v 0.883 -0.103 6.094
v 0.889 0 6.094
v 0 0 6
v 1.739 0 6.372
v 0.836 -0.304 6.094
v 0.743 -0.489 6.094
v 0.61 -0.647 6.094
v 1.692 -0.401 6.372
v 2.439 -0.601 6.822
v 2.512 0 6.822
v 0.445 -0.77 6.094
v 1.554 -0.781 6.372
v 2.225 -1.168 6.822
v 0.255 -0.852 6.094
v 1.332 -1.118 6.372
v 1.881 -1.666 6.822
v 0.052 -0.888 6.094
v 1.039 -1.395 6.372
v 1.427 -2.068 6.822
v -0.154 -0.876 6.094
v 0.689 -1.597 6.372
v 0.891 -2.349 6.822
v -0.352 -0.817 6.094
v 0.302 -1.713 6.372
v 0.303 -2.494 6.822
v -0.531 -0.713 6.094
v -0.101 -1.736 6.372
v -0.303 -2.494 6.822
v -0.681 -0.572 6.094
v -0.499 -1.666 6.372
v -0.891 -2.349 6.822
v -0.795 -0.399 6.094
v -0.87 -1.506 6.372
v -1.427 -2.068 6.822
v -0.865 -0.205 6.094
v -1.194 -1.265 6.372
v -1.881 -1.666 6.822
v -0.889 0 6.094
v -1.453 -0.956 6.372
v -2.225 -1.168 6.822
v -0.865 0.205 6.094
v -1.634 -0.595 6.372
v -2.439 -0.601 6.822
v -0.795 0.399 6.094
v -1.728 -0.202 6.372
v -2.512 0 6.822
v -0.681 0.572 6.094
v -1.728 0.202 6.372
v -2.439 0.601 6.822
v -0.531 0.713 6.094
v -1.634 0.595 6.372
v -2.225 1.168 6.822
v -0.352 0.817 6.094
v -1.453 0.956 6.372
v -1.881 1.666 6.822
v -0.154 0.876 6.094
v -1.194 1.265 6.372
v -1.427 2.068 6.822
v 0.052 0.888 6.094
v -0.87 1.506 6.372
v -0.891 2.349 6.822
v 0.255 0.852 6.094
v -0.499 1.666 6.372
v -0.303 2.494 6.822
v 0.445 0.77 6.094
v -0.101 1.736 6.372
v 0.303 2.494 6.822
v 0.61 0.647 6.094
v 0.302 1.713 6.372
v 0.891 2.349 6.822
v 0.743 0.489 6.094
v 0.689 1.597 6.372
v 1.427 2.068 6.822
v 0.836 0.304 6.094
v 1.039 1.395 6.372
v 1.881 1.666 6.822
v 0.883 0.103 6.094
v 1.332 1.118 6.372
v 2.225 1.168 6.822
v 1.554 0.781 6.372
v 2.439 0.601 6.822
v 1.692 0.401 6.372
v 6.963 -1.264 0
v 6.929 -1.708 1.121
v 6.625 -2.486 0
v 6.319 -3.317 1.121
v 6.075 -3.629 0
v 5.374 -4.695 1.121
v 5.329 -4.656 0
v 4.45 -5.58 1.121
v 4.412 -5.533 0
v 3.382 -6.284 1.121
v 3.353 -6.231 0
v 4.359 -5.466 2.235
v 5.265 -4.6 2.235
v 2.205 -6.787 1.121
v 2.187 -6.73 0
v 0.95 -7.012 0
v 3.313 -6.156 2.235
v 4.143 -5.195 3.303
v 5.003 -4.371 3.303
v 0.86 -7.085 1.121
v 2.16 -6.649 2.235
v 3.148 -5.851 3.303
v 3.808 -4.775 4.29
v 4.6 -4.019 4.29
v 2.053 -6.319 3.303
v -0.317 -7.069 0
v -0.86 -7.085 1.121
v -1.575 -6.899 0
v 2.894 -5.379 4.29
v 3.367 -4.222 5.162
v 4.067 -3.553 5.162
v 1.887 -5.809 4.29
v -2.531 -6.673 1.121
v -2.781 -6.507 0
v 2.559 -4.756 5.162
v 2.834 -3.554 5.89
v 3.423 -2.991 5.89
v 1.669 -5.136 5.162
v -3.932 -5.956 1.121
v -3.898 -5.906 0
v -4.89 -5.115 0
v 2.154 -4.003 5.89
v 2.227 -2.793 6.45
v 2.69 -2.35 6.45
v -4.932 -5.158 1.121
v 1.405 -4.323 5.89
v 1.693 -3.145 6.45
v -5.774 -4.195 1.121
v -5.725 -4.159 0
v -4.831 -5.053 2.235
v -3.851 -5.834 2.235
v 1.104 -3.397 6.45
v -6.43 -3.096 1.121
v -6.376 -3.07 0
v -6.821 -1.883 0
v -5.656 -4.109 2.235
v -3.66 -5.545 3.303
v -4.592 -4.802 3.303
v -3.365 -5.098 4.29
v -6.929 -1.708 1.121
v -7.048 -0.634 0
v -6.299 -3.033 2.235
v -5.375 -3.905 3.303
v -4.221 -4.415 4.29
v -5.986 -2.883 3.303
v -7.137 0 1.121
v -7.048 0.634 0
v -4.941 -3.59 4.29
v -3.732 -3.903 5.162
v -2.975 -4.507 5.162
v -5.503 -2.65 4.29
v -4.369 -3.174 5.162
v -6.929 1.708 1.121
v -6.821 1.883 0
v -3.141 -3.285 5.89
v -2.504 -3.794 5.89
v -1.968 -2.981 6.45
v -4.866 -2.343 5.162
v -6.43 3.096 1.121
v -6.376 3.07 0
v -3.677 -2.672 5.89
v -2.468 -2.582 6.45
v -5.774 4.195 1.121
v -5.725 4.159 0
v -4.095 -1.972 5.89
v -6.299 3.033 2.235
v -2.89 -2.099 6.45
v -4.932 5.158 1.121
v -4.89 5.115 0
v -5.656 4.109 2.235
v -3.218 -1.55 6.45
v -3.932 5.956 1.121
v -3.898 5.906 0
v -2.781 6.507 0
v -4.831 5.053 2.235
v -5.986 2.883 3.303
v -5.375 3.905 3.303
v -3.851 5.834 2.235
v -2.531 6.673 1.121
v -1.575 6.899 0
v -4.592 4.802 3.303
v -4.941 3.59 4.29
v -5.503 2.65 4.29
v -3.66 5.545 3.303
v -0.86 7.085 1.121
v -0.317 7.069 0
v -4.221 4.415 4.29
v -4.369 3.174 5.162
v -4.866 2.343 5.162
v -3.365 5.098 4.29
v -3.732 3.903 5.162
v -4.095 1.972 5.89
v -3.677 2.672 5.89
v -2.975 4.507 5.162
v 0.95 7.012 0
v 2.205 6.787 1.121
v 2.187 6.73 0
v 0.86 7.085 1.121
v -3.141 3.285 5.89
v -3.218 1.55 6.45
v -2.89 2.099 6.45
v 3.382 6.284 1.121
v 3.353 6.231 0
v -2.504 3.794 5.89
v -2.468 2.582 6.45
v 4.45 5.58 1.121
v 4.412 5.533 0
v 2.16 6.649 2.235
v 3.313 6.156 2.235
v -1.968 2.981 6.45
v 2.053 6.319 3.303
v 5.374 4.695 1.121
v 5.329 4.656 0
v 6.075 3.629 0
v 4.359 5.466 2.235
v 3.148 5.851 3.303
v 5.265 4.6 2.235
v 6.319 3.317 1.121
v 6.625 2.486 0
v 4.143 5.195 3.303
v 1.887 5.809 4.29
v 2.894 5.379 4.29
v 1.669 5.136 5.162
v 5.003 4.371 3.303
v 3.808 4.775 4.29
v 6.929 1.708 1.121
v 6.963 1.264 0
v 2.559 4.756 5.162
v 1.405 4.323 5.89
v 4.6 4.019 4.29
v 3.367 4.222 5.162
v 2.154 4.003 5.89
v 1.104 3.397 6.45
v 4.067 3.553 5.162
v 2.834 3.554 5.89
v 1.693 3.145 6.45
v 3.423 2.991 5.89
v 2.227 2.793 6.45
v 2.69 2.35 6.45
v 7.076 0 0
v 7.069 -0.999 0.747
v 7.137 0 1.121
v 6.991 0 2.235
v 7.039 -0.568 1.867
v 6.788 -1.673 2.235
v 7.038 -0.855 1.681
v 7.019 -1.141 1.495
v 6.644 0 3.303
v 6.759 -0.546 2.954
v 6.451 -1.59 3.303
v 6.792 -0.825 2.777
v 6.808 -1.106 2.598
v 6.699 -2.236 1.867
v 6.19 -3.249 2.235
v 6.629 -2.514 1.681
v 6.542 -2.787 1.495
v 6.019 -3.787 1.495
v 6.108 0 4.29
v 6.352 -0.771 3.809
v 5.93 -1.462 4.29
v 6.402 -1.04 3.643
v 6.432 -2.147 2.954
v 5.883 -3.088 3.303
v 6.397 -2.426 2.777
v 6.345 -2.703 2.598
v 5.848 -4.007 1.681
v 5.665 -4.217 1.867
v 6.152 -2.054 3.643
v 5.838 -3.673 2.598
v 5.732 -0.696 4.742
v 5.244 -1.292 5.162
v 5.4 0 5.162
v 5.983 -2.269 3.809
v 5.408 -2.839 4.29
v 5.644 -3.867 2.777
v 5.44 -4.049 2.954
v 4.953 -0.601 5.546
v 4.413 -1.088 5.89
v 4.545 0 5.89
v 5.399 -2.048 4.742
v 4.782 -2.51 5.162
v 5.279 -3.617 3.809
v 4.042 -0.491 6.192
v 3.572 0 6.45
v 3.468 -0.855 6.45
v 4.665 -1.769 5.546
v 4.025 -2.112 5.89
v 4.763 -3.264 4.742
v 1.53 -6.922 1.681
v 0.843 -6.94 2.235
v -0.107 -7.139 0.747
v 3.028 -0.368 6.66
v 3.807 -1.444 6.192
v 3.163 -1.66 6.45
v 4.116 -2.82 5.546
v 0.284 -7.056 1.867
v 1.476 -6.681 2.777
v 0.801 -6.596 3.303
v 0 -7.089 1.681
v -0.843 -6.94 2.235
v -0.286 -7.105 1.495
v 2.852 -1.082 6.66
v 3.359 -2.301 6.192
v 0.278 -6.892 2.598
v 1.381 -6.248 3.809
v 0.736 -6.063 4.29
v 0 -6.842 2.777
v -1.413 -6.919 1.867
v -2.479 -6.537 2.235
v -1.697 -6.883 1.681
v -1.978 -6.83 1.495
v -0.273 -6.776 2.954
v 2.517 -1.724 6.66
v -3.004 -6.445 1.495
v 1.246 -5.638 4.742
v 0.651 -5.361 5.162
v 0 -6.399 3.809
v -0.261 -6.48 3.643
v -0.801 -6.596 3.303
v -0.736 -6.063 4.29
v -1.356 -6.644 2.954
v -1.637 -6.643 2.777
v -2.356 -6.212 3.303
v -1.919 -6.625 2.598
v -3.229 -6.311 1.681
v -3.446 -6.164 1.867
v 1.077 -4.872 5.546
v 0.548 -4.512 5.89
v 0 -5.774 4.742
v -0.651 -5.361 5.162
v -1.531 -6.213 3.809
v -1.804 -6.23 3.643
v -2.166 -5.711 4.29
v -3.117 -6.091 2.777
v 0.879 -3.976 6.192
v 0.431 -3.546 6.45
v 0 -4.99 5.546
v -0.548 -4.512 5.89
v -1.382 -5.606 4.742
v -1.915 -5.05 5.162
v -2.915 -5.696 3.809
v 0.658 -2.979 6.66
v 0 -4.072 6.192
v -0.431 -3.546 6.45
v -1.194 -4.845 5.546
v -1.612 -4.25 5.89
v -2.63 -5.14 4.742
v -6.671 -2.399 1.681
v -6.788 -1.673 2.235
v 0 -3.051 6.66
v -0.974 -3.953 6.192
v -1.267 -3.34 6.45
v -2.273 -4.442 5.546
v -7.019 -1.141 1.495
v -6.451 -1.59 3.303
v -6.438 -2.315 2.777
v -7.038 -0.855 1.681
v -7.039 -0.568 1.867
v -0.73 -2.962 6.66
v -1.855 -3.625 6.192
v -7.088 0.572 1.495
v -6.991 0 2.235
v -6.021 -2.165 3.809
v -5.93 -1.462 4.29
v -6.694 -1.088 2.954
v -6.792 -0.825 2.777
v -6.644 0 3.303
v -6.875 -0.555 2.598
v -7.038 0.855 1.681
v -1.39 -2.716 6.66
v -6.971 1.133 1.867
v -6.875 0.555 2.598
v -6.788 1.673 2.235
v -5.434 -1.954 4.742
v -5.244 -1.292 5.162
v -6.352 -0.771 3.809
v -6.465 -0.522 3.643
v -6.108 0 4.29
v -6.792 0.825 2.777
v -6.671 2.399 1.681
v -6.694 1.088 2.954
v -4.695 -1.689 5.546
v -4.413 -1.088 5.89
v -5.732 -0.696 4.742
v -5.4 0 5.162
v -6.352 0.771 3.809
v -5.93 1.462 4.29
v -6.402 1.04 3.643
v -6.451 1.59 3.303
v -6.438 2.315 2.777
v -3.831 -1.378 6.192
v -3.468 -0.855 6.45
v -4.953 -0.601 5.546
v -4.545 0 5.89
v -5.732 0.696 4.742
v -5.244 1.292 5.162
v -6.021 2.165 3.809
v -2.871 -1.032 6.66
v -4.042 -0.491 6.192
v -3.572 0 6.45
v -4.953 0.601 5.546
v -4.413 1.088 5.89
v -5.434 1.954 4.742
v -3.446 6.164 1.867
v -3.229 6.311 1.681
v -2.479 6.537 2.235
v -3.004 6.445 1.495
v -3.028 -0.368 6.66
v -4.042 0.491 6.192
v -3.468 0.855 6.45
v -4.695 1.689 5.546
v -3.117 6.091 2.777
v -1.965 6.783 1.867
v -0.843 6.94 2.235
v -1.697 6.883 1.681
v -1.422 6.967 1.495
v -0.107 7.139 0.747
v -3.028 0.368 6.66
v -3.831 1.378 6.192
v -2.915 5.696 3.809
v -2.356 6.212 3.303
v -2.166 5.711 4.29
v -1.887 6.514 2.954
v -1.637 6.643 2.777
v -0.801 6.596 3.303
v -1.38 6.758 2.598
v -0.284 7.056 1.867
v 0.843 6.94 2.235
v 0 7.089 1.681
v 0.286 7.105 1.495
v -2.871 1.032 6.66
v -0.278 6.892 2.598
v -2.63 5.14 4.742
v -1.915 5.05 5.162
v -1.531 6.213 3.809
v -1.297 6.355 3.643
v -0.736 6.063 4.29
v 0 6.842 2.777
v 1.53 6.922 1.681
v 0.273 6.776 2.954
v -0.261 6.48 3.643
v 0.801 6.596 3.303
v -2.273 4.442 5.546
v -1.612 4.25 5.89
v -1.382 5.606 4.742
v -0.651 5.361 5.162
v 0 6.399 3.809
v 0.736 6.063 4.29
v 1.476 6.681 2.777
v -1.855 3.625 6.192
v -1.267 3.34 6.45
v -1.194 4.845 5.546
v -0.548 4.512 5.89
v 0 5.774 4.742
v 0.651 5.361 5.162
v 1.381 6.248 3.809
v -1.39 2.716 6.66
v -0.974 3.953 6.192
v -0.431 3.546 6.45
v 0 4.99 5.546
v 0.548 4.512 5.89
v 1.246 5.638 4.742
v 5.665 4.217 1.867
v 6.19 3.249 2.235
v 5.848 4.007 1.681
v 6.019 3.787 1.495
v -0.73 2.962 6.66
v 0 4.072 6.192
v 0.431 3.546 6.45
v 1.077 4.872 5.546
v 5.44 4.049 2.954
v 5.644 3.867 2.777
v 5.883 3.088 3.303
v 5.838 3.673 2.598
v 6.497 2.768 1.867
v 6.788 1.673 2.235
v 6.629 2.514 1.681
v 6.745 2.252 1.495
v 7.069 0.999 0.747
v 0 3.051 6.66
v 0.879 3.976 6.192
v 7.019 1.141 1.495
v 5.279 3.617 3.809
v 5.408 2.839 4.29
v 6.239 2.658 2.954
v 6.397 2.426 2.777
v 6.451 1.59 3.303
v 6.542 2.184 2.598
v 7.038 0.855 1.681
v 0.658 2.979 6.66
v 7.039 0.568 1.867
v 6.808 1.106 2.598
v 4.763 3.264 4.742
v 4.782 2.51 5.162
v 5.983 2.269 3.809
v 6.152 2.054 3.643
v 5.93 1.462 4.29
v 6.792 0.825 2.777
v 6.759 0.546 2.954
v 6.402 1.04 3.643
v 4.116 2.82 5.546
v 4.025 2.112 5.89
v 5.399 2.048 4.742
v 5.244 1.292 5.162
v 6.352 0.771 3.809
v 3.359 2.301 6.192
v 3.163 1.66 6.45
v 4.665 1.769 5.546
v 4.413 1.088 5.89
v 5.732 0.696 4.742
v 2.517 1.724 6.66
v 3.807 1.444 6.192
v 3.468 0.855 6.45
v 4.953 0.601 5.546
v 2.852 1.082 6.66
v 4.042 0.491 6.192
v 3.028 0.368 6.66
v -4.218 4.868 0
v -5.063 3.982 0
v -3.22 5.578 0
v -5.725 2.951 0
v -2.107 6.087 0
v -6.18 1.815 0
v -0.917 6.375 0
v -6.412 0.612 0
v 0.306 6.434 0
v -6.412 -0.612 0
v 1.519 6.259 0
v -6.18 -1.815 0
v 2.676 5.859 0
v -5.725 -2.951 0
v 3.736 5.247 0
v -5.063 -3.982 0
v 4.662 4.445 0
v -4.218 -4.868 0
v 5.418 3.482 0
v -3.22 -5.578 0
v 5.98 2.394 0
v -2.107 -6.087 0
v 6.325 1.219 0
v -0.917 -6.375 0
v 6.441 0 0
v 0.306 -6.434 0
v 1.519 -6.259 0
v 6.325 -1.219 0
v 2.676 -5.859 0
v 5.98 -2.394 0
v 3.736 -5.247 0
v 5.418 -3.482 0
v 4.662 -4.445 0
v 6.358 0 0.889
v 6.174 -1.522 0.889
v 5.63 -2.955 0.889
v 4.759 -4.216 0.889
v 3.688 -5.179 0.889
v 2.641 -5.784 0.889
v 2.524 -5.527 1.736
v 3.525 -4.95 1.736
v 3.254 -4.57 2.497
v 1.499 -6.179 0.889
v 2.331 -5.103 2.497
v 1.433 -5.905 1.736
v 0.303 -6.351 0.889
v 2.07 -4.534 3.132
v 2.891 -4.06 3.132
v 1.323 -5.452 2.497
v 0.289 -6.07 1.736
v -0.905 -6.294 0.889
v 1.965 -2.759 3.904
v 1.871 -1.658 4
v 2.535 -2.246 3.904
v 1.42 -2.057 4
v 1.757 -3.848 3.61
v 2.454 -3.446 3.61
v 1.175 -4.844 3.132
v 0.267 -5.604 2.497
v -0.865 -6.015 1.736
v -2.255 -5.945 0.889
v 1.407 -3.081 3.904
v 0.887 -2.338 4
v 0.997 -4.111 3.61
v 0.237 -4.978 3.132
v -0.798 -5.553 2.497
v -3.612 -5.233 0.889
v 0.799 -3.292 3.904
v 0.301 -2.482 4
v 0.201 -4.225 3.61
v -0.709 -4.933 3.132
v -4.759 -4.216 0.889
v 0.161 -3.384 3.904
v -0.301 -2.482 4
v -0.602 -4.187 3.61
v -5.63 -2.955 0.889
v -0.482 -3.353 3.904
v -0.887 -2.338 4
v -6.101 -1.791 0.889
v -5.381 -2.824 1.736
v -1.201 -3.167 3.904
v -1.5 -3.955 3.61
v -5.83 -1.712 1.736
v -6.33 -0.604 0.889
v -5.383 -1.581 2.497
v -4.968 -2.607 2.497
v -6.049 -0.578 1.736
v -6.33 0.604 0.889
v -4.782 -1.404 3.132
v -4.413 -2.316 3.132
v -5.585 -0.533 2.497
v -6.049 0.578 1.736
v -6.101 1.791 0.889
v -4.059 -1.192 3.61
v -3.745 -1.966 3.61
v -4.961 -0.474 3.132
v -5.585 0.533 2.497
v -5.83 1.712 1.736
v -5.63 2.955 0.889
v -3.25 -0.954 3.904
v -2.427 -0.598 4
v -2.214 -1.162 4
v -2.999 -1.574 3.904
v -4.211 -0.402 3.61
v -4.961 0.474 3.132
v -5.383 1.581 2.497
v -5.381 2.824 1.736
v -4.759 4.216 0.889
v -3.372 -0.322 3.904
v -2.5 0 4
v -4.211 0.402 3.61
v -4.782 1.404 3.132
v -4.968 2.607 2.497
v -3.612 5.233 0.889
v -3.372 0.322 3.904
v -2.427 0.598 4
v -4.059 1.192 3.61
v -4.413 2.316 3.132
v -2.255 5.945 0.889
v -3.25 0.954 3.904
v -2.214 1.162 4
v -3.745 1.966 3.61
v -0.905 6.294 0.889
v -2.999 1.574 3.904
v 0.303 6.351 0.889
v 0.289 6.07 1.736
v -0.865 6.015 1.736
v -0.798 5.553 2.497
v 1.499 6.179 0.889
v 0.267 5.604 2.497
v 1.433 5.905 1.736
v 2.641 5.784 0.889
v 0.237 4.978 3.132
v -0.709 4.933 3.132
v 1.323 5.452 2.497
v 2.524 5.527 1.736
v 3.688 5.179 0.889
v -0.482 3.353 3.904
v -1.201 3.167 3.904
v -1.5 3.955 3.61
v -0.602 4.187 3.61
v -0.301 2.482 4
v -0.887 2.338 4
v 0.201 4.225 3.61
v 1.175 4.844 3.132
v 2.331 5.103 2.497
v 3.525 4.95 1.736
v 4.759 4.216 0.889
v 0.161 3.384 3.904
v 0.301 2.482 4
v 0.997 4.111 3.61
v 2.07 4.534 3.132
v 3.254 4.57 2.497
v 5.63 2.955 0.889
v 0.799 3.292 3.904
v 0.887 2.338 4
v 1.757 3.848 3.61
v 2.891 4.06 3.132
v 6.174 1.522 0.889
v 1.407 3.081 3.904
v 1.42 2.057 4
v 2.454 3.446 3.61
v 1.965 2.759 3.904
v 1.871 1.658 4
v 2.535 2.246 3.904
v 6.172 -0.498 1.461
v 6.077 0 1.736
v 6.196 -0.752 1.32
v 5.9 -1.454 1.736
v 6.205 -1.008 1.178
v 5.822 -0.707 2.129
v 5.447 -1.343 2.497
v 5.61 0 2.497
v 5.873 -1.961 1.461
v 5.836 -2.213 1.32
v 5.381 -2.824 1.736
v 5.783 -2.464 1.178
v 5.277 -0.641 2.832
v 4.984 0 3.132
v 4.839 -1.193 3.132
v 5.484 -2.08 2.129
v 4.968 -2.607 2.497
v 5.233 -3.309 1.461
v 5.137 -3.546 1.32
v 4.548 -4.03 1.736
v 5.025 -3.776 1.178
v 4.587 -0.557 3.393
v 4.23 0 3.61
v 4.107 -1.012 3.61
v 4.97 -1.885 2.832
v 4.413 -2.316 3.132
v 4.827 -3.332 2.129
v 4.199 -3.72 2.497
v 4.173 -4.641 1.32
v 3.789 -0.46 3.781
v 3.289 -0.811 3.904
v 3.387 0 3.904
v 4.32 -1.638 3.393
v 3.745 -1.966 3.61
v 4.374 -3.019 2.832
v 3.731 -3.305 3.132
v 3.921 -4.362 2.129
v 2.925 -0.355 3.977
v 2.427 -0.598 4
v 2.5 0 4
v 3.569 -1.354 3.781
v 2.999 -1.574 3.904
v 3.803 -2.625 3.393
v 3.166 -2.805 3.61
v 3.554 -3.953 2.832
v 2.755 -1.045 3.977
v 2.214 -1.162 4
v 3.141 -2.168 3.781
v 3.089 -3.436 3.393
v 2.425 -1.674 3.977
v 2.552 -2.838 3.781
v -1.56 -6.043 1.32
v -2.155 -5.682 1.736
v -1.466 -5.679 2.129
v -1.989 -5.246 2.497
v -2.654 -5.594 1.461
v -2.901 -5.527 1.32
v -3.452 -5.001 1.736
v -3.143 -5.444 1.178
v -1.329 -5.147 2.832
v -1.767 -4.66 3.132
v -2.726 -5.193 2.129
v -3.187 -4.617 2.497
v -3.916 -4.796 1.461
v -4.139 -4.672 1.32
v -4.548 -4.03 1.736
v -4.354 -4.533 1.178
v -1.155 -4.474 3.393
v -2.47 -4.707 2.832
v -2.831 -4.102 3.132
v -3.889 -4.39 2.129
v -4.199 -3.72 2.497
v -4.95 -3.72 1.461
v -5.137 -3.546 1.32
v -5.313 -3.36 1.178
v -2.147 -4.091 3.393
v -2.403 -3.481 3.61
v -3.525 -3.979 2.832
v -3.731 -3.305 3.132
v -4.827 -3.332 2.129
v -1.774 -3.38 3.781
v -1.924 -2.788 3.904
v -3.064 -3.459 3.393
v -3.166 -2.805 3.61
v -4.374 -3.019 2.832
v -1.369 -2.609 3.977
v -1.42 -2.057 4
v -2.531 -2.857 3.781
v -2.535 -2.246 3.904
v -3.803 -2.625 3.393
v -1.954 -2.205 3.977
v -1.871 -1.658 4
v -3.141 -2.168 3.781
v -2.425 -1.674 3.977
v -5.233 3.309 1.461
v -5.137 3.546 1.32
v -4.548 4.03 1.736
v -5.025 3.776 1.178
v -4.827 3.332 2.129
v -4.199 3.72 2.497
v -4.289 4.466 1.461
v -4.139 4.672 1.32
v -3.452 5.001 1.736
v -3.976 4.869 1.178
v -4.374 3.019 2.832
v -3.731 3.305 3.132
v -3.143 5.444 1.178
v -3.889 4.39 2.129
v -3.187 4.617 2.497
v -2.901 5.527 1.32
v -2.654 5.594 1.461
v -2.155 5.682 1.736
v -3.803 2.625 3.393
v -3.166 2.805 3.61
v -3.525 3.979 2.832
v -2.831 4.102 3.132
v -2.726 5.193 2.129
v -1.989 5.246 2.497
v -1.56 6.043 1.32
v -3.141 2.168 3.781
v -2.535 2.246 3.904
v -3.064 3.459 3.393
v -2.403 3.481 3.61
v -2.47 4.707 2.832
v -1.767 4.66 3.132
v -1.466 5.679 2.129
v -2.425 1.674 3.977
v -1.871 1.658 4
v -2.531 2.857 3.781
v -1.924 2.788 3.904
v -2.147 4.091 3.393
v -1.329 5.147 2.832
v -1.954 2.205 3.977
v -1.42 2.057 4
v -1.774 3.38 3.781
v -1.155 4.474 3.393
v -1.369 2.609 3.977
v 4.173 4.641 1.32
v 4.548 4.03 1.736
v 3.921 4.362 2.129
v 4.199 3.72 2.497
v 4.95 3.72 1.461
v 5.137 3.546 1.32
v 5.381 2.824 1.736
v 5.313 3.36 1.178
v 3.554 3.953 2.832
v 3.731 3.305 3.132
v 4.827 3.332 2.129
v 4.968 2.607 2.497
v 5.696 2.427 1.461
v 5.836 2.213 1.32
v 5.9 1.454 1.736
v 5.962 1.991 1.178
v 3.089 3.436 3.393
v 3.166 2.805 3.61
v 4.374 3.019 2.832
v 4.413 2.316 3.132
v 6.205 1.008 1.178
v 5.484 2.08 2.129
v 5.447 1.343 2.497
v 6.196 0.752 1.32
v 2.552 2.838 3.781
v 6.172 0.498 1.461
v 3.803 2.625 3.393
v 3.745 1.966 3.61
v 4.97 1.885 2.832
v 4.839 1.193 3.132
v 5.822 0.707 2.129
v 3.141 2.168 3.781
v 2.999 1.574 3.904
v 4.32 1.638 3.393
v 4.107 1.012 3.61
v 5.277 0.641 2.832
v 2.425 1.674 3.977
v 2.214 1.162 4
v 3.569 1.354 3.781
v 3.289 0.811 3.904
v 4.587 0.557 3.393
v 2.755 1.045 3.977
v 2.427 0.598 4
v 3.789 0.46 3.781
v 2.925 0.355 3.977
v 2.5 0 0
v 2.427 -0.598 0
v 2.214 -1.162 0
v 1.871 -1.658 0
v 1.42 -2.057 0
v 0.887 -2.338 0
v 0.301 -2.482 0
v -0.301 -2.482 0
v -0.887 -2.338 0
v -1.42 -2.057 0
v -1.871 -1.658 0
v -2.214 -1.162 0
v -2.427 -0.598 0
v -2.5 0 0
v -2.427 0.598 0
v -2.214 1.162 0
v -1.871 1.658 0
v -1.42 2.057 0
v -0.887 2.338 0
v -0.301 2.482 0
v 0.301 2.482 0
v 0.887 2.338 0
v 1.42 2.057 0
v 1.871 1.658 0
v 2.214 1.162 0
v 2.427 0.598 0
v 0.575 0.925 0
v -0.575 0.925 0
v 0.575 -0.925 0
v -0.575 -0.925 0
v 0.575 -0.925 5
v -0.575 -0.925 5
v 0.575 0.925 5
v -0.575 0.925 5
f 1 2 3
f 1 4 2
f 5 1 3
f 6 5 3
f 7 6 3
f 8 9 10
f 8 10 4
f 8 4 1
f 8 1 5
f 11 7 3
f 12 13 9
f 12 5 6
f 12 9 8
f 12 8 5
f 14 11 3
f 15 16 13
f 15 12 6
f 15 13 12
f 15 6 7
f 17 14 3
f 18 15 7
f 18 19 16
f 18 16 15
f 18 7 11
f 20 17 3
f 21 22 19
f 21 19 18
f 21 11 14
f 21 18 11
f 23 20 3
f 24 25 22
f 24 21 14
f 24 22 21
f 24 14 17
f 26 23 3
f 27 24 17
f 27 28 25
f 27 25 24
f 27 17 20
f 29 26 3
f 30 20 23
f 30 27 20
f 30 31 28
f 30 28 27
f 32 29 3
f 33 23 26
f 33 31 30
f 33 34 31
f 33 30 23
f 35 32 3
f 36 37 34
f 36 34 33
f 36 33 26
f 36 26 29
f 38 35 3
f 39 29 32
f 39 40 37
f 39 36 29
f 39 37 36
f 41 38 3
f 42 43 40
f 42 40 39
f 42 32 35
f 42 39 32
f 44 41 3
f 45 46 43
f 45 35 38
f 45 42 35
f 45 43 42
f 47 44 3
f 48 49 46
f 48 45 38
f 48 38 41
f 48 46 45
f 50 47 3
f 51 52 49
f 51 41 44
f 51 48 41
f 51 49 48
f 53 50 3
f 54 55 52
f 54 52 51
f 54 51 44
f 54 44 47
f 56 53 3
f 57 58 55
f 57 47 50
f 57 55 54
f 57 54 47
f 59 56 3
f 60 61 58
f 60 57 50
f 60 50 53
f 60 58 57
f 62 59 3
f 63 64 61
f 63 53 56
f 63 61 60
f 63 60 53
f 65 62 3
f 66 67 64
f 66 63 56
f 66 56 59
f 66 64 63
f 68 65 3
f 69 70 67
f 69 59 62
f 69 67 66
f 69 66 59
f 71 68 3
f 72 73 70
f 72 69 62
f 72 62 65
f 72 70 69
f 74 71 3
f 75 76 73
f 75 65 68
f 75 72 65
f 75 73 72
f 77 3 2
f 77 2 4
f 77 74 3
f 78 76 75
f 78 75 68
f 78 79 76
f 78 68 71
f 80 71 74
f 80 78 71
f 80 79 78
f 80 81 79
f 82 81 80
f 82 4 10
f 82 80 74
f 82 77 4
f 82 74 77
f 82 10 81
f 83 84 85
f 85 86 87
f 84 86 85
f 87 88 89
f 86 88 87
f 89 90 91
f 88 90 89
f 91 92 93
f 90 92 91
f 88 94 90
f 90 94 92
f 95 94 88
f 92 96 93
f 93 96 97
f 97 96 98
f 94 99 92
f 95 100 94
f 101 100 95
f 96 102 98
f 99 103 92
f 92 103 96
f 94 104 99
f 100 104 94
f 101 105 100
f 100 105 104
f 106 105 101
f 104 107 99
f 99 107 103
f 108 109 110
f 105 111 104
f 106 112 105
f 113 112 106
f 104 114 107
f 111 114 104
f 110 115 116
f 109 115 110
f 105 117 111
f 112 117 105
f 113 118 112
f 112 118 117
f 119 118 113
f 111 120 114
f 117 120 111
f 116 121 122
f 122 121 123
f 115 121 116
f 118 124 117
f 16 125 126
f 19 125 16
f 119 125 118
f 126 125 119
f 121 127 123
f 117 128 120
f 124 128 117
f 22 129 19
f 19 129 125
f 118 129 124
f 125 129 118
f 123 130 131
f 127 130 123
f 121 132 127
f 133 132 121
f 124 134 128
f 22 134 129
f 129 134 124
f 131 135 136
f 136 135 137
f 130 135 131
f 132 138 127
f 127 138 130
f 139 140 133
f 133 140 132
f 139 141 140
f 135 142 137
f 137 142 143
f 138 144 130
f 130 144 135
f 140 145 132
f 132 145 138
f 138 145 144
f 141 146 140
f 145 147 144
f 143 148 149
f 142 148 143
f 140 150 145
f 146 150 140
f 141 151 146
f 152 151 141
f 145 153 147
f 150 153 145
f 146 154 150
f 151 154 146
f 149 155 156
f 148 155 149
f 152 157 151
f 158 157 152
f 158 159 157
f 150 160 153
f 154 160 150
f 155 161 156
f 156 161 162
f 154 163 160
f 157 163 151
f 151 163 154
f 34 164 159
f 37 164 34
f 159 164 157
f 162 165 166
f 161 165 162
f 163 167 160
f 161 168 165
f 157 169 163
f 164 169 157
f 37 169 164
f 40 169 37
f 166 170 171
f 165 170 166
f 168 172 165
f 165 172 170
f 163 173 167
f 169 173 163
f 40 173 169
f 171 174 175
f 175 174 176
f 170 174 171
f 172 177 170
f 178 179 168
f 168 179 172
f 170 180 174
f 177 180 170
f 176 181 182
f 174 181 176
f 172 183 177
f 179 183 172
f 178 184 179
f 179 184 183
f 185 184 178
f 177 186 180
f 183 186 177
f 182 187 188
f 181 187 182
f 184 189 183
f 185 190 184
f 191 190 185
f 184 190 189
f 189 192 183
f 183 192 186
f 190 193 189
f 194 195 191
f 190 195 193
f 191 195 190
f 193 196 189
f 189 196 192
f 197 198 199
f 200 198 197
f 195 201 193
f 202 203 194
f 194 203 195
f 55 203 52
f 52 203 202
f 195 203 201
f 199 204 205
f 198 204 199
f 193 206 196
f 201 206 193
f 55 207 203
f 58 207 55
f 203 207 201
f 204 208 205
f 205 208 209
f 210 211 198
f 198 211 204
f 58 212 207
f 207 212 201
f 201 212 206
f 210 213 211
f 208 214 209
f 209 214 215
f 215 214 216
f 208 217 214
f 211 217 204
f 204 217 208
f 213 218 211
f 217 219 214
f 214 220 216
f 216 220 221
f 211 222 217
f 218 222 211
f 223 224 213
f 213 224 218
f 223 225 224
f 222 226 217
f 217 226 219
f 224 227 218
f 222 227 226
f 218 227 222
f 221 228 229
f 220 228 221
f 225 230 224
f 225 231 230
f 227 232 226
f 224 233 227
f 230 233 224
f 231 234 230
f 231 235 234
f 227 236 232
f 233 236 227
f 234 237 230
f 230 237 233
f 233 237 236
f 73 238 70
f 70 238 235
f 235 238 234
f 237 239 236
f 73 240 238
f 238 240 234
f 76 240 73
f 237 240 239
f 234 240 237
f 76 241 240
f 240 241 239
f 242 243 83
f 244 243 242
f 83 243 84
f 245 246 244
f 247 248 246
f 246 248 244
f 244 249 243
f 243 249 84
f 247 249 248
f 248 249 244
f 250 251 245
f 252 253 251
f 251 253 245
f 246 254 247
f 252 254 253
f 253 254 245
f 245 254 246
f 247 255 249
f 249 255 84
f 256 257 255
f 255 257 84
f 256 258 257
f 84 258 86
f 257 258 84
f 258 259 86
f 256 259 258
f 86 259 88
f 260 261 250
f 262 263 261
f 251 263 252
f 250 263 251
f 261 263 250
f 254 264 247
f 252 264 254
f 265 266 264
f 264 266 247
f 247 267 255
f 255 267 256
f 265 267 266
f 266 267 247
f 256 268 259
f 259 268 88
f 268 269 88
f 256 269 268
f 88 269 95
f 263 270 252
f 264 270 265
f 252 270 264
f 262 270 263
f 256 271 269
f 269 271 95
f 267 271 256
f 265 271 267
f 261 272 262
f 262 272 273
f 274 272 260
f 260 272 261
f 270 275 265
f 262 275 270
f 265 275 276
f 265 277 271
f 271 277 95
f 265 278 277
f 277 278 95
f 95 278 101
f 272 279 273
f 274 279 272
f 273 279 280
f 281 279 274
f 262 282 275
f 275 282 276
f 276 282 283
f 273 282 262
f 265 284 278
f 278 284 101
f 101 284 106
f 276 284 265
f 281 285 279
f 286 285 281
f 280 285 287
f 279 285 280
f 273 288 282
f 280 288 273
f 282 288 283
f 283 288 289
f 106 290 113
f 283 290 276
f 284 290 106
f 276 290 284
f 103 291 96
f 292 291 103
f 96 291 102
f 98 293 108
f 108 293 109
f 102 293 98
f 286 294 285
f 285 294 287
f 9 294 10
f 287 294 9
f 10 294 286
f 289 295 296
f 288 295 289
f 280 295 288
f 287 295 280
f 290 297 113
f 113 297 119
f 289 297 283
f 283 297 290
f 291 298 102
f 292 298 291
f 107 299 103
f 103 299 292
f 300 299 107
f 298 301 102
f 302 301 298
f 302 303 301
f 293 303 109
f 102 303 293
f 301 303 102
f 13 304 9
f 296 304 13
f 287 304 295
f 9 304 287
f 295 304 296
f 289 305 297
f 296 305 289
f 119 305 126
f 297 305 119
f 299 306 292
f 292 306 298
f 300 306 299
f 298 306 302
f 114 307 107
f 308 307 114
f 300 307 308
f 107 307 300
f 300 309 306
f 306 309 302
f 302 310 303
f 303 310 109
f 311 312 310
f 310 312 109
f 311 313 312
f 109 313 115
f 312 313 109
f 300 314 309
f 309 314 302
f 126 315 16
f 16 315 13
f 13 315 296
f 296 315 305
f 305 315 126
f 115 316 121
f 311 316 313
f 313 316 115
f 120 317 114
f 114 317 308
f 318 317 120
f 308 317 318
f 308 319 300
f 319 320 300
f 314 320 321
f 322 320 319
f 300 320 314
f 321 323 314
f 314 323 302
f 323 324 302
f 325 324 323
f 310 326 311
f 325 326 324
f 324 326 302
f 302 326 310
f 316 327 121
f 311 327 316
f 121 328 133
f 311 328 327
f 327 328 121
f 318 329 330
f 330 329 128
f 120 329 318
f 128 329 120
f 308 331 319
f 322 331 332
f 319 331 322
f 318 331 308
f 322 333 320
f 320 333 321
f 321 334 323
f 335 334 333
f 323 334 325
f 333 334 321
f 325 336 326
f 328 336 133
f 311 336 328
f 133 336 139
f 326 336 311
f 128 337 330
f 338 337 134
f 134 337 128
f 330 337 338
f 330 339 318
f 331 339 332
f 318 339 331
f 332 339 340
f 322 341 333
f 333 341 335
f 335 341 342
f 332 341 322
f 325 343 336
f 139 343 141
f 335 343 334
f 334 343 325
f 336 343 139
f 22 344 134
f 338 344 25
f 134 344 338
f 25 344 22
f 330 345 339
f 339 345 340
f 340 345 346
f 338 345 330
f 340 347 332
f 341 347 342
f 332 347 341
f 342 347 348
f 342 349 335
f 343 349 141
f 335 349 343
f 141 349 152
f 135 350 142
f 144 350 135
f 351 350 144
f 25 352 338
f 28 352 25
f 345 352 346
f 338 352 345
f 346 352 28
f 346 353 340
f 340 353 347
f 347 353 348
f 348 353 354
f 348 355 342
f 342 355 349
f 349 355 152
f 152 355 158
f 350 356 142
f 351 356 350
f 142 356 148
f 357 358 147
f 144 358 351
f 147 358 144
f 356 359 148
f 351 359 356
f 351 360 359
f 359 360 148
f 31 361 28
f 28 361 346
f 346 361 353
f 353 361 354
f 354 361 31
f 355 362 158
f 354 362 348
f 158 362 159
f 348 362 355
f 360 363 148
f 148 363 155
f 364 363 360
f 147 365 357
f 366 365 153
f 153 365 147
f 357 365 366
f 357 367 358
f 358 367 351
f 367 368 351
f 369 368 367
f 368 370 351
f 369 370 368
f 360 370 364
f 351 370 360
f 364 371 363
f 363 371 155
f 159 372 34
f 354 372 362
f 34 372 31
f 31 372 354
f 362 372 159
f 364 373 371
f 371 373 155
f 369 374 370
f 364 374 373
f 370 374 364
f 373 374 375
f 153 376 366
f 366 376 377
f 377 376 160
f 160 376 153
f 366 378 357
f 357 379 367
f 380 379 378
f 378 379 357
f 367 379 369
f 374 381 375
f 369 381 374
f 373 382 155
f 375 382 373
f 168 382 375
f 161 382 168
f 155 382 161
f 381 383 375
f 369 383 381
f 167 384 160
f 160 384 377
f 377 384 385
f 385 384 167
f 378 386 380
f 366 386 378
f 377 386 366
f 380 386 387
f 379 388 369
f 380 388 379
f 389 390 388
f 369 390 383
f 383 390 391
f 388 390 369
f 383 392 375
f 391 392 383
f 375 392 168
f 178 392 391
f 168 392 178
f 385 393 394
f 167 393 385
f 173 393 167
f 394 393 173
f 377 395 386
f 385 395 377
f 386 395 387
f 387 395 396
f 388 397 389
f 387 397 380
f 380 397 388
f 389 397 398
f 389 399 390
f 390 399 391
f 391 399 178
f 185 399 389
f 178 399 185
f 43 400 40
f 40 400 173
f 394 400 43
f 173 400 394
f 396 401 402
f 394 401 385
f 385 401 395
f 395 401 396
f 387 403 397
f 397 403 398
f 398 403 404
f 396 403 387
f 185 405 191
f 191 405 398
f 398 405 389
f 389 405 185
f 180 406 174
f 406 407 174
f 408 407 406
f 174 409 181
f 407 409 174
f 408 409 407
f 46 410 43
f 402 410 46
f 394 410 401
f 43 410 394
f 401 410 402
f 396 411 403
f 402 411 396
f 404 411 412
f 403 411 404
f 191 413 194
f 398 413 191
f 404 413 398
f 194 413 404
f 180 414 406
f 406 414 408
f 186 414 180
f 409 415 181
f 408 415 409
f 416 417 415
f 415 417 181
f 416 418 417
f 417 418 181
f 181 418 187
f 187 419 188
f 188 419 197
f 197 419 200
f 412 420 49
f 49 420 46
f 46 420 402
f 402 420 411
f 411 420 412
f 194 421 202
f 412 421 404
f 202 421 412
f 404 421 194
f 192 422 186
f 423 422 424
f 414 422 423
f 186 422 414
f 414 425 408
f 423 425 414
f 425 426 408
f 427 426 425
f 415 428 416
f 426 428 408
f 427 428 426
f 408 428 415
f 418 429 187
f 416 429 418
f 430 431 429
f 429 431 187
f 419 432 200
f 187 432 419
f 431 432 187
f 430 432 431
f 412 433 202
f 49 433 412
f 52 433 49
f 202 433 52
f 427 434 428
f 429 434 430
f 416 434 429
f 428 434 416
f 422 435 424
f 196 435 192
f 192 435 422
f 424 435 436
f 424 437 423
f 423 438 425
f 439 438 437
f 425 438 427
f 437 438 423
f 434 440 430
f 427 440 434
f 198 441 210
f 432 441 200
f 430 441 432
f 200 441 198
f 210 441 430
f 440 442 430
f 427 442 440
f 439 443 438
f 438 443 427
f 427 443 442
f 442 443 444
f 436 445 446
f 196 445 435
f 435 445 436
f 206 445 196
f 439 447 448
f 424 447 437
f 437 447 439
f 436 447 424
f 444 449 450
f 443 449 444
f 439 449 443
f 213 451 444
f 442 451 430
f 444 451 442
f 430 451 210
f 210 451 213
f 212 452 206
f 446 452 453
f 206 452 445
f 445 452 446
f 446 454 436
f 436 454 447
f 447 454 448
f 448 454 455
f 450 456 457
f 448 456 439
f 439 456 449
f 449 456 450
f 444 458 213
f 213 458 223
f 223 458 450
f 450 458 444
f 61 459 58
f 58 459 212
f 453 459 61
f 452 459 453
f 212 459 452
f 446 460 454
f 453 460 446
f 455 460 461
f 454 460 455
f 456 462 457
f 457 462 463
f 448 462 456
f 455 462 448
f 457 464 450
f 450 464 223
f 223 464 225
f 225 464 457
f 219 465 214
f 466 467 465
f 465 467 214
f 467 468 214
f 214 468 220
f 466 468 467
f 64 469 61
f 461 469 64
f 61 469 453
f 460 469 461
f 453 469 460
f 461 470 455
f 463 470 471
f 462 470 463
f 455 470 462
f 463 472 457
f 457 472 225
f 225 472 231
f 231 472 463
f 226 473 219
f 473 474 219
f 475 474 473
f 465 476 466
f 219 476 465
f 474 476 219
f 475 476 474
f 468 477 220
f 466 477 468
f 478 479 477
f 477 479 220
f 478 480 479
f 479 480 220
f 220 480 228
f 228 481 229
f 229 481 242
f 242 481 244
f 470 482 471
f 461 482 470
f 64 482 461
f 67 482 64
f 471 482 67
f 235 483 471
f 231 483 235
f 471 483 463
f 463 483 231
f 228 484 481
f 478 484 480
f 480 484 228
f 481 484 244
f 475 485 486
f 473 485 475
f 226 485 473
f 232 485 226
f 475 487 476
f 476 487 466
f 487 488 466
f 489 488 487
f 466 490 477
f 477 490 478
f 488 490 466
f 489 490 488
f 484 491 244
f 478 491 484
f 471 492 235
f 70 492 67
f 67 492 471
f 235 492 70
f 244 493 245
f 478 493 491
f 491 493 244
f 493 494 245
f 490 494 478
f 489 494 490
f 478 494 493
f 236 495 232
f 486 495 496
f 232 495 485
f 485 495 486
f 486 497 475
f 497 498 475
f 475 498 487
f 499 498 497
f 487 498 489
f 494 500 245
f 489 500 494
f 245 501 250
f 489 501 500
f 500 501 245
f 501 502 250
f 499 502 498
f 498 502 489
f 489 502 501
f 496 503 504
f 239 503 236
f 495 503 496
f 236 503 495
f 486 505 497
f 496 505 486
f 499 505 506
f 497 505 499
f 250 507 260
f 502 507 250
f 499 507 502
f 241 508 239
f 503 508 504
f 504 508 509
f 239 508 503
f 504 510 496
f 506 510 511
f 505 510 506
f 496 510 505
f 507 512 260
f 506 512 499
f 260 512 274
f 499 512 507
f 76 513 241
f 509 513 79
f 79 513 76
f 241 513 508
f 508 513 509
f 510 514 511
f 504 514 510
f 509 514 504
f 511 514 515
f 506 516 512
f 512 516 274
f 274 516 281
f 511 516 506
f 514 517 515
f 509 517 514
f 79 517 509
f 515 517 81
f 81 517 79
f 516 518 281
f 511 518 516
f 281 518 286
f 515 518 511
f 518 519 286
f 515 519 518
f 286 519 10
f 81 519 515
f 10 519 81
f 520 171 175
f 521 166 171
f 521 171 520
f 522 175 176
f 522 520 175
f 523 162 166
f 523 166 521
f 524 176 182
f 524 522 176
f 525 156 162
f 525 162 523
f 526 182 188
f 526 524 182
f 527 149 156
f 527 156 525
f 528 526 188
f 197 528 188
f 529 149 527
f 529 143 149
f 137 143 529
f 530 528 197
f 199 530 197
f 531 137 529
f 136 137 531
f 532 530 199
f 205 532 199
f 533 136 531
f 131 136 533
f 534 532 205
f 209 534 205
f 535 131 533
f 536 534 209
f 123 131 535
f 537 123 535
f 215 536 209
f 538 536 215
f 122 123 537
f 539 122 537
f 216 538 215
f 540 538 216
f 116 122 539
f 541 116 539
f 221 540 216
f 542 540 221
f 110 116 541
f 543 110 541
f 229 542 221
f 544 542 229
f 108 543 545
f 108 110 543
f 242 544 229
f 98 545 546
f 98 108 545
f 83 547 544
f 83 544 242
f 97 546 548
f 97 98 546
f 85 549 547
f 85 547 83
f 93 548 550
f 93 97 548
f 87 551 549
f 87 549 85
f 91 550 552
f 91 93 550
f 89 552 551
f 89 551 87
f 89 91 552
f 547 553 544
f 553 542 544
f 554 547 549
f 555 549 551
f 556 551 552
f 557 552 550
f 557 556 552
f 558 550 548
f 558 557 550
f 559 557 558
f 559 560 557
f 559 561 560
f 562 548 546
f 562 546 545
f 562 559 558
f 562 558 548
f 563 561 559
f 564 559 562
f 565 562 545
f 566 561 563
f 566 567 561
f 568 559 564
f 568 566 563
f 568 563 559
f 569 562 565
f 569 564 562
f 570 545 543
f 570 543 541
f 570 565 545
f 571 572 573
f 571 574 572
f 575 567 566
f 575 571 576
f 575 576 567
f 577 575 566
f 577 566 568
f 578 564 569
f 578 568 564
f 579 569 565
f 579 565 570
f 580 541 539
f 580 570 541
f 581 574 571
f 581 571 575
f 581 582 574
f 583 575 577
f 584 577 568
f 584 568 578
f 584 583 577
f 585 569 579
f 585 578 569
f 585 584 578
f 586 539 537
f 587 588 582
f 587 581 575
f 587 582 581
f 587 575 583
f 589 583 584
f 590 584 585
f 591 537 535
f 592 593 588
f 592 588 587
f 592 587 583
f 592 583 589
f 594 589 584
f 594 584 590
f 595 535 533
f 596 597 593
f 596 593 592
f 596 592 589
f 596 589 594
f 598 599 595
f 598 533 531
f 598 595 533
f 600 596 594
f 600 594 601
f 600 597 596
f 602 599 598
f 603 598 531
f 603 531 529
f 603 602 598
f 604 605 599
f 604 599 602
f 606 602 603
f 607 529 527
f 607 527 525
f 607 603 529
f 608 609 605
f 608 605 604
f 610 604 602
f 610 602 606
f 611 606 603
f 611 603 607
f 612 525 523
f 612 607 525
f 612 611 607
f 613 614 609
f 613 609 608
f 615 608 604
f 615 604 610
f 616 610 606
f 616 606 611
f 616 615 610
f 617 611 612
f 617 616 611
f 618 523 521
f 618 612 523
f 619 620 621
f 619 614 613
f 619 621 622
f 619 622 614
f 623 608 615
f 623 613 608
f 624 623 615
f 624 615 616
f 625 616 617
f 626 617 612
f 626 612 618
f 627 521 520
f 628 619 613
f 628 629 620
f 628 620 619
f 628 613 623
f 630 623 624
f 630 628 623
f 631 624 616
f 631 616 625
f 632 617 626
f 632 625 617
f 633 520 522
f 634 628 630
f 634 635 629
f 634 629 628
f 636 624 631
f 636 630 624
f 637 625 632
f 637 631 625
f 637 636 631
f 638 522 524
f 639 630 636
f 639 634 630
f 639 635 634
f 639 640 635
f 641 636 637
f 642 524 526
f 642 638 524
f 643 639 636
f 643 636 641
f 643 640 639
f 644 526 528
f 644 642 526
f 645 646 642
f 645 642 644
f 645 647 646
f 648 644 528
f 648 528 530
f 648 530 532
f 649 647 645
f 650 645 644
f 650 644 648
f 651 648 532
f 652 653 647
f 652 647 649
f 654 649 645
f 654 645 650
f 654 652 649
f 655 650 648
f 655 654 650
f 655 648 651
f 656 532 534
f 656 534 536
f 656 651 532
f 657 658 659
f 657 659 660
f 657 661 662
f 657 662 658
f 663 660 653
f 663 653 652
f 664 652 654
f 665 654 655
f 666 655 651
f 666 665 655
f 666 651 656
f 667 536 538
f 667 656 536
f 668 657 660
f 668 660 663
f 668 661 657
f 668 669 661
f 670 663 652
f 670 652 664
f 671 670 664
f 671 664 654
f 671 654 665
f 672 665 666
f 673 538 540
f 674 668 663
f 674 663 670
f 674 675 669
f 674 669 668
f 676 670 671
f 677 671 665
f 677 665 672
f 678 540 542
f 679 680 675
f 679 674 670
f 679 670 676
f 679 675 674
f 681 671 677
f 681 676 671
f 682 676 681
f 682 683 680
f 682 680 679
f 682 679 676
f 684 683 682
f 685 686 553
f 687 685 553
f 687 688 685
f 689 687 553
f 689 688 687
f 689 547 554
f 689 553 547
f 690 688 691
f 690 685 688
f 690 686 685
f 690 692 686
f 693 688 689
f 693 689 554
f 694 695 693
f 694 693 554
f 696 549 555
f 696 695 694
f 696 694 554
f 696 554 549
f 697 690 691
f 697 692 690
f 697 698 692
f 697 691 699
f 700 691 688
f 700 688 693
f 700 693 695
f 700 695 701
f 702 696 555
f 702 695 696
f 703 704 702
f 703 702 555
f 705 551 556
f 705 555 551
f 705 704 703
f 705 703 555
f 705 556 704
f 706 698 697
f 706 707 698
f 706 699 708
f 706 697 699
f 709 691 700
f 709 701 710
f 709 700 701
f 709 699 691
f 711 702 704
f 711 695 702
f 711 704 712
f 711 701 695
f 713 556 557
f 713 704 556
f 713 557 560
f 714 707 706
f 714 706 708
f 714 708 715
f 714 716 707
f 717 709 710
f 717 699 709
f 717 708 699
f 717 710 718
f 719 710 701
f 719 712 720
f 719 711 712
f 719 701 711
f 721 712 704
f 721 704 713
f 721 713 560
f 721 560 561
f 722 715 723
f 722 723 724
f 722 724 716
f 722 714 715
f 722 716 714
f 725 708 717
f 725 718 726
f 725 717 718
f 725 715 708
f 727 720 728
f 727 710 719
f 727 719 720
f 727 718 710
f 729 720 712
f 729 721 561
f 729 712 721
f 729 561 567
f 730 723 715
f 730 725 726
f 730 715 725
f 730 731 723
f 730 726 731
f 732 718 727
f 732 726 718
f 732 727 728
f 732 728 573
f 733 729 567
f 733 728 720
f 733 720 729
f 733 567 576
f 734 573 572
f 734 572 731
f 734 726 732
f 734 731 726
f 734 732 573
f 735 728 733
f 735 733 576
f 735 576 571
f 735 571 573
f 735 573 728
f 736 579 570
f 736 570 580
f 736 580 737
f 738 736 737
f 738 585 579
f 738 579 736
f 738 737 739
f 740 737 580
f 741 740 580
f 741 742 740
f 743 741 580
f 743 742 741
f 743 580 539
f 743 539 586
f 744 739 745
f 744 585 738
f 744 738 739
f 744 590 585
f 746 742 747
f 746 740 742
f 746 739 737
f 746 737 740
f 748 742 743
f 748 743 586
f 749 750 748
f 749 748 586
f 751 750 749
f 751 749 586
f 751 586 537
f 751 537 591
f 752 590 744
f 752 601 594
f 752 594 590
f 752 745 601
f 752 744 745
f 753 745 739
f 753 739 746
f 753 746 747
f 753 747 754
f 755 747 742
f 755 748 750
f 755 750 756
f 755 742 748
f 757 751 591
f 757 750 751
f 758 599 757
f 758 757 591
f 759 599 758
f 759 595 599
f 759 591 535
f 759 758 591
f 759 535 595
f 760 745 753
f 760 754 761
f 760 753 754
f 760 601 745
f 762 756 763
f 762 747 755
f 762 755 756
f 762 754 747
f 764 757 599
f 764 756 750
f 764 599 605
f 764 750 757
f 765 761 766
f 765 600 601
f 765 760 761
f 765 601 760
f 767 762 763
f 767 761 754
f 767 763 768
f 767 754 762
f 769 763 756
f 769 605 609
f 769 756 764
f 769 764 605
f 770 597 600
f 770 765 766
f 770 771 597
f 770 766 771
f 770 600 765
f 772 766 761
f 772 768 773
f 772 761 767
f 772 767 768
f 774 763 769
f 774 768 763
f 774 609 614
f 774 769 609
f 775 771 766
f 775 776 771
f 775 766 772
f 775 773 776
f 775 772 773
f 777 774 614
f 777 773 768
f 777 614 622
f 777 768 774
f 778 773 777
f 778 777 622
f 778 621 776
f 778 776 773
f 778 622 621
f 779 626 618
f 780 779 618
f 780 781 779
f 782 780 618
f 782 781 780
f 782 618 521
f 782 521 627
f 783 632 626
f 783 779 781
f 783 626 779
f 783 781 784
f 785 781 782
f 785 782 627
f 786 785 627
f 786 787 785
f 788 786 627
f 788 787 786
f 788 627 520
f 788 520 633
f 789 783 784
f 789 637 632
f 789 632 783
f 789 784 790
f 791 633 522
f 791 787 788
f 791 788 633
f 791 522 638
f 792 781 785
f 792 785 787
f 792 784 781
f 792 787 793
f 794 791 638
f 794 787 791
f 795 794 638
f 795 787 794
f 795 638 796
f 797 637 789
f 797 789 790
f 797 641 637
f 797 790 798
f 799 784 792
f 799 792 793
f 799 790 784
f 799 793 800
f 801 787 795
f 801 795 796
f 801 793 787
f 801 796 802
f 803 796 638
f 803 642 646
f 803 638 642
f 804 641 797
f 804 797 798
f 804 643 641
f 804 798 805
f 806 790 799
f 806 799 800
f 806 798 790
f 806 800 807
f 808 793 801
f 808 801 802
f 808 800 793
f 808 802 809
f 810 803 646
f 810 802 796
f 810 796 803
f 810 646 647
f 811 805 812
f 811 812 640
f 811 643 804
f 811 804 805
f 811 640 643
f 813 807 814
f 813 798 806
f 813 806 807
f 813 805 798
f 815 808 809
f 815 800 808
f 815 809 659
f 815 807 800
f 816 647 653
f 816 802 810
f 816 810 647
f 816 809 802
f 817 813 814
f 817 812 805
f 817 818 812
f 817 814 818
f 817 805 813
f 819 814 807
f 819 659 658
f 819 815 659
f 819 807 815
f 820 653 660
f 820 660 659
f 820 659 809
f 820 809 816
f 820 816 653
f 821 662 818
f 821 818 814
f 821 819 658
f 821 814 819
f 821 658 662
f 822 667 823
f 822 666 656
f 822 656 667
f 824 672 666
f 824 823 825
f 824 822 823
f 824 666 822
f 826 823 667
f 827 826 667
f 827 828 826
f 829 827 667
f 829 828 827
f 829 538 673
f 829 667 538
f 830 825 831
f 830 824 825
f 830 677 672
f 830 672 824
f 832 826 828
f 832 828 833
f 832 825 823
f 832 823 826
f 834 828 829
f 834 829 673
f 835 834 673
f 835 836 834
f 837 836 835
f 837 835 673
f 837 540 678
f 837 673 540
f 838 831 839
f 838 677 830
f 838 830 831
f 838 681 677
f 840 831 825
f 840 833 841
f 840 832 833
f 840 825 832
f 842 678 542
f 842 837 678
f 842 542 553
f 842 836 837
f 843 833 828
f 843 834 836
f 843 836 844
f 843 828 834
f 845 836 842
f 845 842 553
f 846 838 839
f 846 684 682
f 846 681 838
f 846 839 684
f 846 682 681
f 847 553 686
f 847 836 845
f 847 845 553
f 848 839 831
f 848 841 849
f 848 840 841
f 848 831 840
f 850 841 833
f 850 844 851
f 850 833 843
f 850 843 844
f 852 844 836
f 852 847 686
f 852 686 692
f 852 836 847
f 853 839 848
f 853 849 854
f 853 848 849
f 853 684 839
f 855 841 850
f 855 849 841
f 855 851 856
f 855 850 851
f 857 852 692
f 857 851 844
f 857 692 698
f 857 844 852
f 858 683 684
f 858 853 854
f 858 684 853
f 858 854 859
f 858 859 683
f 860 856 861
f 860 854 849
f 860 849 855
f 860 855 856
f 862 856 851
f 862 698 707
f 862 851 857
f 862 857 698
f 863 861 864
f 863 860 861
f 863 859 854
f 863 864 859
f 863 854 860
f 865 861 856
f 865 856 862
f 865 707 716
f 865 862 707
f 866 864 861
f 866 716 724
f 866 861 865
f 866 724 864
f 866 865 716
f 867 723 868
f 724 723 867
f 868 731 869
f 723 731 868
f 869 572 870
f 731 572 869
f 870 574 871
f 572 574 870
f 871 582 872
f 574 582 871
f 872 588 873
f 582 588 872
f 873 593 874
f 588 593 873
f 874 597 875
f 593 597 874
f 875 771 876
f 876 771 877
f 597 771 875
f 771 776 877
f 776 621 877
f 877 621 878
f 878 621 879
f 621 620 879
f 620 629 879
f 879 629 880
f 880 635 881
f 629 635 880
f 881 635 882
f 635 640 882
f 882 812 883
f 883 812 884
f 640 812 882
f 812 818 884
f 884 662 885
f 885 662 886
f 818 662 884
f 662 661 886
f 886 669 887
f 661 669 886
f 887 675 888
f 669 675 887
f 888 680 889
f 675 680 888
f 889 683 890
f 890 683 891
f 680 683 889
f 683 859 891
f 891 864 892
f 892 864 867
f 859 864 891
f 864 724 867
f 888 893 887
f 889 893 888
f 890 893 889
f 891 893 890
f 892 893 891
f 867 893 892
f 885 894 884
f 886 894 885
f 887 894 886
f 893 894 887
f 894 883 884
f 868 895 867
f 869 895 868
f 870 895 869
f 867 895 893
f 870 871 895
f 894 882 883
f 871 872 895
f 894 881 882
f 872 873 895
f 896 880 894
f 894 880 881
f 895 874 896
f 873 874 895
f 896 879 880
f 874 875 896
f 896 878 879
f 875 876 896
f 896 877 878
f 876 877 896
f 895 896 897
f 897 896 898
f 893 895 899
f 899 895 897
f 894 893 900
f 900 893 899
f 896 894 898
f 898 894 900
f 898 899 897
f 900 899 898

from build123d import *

# Parameters (mm, degrees)
SKETCH001_W  = 1.15
SKETCH001_H  = 1.85
POCKET_DEPTH = 5


with BuildPart() as part:
    # Sketch → Revolution (revolve)
    with BuildSketch(Plane.XZ):
        with BuildLine():
            ThreePointArc((0, 6), (1.321655, 6.210666), (2.512322, 6.821784))
            ThreePointArc((7.076375, 0), (6.107951, 4.289746), (2.512322, 6.821784))
            Line((7.076375, 0), (6.440959, 0))
            ThreePointArc((6.440959, 0), (5.315373, 2.832423), (2.5, 4))
            Line((2.5, 0), (2.5, 4))
            Line((0, 0), (2.5, 0))
            Line((0, 0), (0, 6))
        make_face()
    revolve(axis=Axis((0, 0, 0), (0, 0, 1)))

    # Sketch001 (on Face6 of Revolution) → Pocket (cut)
    with BuildSketch(Plane(origin=(0, 0, 0), x_dir=(1, 0, 0), z_dir=(0, 0, -1))):
        Rectangle(SKETCH001_W, SKETCH001_H)
    extrude(amount=-POCKET_DEPTH, mode=Mode.SUBTRACT)


solid = part.part
